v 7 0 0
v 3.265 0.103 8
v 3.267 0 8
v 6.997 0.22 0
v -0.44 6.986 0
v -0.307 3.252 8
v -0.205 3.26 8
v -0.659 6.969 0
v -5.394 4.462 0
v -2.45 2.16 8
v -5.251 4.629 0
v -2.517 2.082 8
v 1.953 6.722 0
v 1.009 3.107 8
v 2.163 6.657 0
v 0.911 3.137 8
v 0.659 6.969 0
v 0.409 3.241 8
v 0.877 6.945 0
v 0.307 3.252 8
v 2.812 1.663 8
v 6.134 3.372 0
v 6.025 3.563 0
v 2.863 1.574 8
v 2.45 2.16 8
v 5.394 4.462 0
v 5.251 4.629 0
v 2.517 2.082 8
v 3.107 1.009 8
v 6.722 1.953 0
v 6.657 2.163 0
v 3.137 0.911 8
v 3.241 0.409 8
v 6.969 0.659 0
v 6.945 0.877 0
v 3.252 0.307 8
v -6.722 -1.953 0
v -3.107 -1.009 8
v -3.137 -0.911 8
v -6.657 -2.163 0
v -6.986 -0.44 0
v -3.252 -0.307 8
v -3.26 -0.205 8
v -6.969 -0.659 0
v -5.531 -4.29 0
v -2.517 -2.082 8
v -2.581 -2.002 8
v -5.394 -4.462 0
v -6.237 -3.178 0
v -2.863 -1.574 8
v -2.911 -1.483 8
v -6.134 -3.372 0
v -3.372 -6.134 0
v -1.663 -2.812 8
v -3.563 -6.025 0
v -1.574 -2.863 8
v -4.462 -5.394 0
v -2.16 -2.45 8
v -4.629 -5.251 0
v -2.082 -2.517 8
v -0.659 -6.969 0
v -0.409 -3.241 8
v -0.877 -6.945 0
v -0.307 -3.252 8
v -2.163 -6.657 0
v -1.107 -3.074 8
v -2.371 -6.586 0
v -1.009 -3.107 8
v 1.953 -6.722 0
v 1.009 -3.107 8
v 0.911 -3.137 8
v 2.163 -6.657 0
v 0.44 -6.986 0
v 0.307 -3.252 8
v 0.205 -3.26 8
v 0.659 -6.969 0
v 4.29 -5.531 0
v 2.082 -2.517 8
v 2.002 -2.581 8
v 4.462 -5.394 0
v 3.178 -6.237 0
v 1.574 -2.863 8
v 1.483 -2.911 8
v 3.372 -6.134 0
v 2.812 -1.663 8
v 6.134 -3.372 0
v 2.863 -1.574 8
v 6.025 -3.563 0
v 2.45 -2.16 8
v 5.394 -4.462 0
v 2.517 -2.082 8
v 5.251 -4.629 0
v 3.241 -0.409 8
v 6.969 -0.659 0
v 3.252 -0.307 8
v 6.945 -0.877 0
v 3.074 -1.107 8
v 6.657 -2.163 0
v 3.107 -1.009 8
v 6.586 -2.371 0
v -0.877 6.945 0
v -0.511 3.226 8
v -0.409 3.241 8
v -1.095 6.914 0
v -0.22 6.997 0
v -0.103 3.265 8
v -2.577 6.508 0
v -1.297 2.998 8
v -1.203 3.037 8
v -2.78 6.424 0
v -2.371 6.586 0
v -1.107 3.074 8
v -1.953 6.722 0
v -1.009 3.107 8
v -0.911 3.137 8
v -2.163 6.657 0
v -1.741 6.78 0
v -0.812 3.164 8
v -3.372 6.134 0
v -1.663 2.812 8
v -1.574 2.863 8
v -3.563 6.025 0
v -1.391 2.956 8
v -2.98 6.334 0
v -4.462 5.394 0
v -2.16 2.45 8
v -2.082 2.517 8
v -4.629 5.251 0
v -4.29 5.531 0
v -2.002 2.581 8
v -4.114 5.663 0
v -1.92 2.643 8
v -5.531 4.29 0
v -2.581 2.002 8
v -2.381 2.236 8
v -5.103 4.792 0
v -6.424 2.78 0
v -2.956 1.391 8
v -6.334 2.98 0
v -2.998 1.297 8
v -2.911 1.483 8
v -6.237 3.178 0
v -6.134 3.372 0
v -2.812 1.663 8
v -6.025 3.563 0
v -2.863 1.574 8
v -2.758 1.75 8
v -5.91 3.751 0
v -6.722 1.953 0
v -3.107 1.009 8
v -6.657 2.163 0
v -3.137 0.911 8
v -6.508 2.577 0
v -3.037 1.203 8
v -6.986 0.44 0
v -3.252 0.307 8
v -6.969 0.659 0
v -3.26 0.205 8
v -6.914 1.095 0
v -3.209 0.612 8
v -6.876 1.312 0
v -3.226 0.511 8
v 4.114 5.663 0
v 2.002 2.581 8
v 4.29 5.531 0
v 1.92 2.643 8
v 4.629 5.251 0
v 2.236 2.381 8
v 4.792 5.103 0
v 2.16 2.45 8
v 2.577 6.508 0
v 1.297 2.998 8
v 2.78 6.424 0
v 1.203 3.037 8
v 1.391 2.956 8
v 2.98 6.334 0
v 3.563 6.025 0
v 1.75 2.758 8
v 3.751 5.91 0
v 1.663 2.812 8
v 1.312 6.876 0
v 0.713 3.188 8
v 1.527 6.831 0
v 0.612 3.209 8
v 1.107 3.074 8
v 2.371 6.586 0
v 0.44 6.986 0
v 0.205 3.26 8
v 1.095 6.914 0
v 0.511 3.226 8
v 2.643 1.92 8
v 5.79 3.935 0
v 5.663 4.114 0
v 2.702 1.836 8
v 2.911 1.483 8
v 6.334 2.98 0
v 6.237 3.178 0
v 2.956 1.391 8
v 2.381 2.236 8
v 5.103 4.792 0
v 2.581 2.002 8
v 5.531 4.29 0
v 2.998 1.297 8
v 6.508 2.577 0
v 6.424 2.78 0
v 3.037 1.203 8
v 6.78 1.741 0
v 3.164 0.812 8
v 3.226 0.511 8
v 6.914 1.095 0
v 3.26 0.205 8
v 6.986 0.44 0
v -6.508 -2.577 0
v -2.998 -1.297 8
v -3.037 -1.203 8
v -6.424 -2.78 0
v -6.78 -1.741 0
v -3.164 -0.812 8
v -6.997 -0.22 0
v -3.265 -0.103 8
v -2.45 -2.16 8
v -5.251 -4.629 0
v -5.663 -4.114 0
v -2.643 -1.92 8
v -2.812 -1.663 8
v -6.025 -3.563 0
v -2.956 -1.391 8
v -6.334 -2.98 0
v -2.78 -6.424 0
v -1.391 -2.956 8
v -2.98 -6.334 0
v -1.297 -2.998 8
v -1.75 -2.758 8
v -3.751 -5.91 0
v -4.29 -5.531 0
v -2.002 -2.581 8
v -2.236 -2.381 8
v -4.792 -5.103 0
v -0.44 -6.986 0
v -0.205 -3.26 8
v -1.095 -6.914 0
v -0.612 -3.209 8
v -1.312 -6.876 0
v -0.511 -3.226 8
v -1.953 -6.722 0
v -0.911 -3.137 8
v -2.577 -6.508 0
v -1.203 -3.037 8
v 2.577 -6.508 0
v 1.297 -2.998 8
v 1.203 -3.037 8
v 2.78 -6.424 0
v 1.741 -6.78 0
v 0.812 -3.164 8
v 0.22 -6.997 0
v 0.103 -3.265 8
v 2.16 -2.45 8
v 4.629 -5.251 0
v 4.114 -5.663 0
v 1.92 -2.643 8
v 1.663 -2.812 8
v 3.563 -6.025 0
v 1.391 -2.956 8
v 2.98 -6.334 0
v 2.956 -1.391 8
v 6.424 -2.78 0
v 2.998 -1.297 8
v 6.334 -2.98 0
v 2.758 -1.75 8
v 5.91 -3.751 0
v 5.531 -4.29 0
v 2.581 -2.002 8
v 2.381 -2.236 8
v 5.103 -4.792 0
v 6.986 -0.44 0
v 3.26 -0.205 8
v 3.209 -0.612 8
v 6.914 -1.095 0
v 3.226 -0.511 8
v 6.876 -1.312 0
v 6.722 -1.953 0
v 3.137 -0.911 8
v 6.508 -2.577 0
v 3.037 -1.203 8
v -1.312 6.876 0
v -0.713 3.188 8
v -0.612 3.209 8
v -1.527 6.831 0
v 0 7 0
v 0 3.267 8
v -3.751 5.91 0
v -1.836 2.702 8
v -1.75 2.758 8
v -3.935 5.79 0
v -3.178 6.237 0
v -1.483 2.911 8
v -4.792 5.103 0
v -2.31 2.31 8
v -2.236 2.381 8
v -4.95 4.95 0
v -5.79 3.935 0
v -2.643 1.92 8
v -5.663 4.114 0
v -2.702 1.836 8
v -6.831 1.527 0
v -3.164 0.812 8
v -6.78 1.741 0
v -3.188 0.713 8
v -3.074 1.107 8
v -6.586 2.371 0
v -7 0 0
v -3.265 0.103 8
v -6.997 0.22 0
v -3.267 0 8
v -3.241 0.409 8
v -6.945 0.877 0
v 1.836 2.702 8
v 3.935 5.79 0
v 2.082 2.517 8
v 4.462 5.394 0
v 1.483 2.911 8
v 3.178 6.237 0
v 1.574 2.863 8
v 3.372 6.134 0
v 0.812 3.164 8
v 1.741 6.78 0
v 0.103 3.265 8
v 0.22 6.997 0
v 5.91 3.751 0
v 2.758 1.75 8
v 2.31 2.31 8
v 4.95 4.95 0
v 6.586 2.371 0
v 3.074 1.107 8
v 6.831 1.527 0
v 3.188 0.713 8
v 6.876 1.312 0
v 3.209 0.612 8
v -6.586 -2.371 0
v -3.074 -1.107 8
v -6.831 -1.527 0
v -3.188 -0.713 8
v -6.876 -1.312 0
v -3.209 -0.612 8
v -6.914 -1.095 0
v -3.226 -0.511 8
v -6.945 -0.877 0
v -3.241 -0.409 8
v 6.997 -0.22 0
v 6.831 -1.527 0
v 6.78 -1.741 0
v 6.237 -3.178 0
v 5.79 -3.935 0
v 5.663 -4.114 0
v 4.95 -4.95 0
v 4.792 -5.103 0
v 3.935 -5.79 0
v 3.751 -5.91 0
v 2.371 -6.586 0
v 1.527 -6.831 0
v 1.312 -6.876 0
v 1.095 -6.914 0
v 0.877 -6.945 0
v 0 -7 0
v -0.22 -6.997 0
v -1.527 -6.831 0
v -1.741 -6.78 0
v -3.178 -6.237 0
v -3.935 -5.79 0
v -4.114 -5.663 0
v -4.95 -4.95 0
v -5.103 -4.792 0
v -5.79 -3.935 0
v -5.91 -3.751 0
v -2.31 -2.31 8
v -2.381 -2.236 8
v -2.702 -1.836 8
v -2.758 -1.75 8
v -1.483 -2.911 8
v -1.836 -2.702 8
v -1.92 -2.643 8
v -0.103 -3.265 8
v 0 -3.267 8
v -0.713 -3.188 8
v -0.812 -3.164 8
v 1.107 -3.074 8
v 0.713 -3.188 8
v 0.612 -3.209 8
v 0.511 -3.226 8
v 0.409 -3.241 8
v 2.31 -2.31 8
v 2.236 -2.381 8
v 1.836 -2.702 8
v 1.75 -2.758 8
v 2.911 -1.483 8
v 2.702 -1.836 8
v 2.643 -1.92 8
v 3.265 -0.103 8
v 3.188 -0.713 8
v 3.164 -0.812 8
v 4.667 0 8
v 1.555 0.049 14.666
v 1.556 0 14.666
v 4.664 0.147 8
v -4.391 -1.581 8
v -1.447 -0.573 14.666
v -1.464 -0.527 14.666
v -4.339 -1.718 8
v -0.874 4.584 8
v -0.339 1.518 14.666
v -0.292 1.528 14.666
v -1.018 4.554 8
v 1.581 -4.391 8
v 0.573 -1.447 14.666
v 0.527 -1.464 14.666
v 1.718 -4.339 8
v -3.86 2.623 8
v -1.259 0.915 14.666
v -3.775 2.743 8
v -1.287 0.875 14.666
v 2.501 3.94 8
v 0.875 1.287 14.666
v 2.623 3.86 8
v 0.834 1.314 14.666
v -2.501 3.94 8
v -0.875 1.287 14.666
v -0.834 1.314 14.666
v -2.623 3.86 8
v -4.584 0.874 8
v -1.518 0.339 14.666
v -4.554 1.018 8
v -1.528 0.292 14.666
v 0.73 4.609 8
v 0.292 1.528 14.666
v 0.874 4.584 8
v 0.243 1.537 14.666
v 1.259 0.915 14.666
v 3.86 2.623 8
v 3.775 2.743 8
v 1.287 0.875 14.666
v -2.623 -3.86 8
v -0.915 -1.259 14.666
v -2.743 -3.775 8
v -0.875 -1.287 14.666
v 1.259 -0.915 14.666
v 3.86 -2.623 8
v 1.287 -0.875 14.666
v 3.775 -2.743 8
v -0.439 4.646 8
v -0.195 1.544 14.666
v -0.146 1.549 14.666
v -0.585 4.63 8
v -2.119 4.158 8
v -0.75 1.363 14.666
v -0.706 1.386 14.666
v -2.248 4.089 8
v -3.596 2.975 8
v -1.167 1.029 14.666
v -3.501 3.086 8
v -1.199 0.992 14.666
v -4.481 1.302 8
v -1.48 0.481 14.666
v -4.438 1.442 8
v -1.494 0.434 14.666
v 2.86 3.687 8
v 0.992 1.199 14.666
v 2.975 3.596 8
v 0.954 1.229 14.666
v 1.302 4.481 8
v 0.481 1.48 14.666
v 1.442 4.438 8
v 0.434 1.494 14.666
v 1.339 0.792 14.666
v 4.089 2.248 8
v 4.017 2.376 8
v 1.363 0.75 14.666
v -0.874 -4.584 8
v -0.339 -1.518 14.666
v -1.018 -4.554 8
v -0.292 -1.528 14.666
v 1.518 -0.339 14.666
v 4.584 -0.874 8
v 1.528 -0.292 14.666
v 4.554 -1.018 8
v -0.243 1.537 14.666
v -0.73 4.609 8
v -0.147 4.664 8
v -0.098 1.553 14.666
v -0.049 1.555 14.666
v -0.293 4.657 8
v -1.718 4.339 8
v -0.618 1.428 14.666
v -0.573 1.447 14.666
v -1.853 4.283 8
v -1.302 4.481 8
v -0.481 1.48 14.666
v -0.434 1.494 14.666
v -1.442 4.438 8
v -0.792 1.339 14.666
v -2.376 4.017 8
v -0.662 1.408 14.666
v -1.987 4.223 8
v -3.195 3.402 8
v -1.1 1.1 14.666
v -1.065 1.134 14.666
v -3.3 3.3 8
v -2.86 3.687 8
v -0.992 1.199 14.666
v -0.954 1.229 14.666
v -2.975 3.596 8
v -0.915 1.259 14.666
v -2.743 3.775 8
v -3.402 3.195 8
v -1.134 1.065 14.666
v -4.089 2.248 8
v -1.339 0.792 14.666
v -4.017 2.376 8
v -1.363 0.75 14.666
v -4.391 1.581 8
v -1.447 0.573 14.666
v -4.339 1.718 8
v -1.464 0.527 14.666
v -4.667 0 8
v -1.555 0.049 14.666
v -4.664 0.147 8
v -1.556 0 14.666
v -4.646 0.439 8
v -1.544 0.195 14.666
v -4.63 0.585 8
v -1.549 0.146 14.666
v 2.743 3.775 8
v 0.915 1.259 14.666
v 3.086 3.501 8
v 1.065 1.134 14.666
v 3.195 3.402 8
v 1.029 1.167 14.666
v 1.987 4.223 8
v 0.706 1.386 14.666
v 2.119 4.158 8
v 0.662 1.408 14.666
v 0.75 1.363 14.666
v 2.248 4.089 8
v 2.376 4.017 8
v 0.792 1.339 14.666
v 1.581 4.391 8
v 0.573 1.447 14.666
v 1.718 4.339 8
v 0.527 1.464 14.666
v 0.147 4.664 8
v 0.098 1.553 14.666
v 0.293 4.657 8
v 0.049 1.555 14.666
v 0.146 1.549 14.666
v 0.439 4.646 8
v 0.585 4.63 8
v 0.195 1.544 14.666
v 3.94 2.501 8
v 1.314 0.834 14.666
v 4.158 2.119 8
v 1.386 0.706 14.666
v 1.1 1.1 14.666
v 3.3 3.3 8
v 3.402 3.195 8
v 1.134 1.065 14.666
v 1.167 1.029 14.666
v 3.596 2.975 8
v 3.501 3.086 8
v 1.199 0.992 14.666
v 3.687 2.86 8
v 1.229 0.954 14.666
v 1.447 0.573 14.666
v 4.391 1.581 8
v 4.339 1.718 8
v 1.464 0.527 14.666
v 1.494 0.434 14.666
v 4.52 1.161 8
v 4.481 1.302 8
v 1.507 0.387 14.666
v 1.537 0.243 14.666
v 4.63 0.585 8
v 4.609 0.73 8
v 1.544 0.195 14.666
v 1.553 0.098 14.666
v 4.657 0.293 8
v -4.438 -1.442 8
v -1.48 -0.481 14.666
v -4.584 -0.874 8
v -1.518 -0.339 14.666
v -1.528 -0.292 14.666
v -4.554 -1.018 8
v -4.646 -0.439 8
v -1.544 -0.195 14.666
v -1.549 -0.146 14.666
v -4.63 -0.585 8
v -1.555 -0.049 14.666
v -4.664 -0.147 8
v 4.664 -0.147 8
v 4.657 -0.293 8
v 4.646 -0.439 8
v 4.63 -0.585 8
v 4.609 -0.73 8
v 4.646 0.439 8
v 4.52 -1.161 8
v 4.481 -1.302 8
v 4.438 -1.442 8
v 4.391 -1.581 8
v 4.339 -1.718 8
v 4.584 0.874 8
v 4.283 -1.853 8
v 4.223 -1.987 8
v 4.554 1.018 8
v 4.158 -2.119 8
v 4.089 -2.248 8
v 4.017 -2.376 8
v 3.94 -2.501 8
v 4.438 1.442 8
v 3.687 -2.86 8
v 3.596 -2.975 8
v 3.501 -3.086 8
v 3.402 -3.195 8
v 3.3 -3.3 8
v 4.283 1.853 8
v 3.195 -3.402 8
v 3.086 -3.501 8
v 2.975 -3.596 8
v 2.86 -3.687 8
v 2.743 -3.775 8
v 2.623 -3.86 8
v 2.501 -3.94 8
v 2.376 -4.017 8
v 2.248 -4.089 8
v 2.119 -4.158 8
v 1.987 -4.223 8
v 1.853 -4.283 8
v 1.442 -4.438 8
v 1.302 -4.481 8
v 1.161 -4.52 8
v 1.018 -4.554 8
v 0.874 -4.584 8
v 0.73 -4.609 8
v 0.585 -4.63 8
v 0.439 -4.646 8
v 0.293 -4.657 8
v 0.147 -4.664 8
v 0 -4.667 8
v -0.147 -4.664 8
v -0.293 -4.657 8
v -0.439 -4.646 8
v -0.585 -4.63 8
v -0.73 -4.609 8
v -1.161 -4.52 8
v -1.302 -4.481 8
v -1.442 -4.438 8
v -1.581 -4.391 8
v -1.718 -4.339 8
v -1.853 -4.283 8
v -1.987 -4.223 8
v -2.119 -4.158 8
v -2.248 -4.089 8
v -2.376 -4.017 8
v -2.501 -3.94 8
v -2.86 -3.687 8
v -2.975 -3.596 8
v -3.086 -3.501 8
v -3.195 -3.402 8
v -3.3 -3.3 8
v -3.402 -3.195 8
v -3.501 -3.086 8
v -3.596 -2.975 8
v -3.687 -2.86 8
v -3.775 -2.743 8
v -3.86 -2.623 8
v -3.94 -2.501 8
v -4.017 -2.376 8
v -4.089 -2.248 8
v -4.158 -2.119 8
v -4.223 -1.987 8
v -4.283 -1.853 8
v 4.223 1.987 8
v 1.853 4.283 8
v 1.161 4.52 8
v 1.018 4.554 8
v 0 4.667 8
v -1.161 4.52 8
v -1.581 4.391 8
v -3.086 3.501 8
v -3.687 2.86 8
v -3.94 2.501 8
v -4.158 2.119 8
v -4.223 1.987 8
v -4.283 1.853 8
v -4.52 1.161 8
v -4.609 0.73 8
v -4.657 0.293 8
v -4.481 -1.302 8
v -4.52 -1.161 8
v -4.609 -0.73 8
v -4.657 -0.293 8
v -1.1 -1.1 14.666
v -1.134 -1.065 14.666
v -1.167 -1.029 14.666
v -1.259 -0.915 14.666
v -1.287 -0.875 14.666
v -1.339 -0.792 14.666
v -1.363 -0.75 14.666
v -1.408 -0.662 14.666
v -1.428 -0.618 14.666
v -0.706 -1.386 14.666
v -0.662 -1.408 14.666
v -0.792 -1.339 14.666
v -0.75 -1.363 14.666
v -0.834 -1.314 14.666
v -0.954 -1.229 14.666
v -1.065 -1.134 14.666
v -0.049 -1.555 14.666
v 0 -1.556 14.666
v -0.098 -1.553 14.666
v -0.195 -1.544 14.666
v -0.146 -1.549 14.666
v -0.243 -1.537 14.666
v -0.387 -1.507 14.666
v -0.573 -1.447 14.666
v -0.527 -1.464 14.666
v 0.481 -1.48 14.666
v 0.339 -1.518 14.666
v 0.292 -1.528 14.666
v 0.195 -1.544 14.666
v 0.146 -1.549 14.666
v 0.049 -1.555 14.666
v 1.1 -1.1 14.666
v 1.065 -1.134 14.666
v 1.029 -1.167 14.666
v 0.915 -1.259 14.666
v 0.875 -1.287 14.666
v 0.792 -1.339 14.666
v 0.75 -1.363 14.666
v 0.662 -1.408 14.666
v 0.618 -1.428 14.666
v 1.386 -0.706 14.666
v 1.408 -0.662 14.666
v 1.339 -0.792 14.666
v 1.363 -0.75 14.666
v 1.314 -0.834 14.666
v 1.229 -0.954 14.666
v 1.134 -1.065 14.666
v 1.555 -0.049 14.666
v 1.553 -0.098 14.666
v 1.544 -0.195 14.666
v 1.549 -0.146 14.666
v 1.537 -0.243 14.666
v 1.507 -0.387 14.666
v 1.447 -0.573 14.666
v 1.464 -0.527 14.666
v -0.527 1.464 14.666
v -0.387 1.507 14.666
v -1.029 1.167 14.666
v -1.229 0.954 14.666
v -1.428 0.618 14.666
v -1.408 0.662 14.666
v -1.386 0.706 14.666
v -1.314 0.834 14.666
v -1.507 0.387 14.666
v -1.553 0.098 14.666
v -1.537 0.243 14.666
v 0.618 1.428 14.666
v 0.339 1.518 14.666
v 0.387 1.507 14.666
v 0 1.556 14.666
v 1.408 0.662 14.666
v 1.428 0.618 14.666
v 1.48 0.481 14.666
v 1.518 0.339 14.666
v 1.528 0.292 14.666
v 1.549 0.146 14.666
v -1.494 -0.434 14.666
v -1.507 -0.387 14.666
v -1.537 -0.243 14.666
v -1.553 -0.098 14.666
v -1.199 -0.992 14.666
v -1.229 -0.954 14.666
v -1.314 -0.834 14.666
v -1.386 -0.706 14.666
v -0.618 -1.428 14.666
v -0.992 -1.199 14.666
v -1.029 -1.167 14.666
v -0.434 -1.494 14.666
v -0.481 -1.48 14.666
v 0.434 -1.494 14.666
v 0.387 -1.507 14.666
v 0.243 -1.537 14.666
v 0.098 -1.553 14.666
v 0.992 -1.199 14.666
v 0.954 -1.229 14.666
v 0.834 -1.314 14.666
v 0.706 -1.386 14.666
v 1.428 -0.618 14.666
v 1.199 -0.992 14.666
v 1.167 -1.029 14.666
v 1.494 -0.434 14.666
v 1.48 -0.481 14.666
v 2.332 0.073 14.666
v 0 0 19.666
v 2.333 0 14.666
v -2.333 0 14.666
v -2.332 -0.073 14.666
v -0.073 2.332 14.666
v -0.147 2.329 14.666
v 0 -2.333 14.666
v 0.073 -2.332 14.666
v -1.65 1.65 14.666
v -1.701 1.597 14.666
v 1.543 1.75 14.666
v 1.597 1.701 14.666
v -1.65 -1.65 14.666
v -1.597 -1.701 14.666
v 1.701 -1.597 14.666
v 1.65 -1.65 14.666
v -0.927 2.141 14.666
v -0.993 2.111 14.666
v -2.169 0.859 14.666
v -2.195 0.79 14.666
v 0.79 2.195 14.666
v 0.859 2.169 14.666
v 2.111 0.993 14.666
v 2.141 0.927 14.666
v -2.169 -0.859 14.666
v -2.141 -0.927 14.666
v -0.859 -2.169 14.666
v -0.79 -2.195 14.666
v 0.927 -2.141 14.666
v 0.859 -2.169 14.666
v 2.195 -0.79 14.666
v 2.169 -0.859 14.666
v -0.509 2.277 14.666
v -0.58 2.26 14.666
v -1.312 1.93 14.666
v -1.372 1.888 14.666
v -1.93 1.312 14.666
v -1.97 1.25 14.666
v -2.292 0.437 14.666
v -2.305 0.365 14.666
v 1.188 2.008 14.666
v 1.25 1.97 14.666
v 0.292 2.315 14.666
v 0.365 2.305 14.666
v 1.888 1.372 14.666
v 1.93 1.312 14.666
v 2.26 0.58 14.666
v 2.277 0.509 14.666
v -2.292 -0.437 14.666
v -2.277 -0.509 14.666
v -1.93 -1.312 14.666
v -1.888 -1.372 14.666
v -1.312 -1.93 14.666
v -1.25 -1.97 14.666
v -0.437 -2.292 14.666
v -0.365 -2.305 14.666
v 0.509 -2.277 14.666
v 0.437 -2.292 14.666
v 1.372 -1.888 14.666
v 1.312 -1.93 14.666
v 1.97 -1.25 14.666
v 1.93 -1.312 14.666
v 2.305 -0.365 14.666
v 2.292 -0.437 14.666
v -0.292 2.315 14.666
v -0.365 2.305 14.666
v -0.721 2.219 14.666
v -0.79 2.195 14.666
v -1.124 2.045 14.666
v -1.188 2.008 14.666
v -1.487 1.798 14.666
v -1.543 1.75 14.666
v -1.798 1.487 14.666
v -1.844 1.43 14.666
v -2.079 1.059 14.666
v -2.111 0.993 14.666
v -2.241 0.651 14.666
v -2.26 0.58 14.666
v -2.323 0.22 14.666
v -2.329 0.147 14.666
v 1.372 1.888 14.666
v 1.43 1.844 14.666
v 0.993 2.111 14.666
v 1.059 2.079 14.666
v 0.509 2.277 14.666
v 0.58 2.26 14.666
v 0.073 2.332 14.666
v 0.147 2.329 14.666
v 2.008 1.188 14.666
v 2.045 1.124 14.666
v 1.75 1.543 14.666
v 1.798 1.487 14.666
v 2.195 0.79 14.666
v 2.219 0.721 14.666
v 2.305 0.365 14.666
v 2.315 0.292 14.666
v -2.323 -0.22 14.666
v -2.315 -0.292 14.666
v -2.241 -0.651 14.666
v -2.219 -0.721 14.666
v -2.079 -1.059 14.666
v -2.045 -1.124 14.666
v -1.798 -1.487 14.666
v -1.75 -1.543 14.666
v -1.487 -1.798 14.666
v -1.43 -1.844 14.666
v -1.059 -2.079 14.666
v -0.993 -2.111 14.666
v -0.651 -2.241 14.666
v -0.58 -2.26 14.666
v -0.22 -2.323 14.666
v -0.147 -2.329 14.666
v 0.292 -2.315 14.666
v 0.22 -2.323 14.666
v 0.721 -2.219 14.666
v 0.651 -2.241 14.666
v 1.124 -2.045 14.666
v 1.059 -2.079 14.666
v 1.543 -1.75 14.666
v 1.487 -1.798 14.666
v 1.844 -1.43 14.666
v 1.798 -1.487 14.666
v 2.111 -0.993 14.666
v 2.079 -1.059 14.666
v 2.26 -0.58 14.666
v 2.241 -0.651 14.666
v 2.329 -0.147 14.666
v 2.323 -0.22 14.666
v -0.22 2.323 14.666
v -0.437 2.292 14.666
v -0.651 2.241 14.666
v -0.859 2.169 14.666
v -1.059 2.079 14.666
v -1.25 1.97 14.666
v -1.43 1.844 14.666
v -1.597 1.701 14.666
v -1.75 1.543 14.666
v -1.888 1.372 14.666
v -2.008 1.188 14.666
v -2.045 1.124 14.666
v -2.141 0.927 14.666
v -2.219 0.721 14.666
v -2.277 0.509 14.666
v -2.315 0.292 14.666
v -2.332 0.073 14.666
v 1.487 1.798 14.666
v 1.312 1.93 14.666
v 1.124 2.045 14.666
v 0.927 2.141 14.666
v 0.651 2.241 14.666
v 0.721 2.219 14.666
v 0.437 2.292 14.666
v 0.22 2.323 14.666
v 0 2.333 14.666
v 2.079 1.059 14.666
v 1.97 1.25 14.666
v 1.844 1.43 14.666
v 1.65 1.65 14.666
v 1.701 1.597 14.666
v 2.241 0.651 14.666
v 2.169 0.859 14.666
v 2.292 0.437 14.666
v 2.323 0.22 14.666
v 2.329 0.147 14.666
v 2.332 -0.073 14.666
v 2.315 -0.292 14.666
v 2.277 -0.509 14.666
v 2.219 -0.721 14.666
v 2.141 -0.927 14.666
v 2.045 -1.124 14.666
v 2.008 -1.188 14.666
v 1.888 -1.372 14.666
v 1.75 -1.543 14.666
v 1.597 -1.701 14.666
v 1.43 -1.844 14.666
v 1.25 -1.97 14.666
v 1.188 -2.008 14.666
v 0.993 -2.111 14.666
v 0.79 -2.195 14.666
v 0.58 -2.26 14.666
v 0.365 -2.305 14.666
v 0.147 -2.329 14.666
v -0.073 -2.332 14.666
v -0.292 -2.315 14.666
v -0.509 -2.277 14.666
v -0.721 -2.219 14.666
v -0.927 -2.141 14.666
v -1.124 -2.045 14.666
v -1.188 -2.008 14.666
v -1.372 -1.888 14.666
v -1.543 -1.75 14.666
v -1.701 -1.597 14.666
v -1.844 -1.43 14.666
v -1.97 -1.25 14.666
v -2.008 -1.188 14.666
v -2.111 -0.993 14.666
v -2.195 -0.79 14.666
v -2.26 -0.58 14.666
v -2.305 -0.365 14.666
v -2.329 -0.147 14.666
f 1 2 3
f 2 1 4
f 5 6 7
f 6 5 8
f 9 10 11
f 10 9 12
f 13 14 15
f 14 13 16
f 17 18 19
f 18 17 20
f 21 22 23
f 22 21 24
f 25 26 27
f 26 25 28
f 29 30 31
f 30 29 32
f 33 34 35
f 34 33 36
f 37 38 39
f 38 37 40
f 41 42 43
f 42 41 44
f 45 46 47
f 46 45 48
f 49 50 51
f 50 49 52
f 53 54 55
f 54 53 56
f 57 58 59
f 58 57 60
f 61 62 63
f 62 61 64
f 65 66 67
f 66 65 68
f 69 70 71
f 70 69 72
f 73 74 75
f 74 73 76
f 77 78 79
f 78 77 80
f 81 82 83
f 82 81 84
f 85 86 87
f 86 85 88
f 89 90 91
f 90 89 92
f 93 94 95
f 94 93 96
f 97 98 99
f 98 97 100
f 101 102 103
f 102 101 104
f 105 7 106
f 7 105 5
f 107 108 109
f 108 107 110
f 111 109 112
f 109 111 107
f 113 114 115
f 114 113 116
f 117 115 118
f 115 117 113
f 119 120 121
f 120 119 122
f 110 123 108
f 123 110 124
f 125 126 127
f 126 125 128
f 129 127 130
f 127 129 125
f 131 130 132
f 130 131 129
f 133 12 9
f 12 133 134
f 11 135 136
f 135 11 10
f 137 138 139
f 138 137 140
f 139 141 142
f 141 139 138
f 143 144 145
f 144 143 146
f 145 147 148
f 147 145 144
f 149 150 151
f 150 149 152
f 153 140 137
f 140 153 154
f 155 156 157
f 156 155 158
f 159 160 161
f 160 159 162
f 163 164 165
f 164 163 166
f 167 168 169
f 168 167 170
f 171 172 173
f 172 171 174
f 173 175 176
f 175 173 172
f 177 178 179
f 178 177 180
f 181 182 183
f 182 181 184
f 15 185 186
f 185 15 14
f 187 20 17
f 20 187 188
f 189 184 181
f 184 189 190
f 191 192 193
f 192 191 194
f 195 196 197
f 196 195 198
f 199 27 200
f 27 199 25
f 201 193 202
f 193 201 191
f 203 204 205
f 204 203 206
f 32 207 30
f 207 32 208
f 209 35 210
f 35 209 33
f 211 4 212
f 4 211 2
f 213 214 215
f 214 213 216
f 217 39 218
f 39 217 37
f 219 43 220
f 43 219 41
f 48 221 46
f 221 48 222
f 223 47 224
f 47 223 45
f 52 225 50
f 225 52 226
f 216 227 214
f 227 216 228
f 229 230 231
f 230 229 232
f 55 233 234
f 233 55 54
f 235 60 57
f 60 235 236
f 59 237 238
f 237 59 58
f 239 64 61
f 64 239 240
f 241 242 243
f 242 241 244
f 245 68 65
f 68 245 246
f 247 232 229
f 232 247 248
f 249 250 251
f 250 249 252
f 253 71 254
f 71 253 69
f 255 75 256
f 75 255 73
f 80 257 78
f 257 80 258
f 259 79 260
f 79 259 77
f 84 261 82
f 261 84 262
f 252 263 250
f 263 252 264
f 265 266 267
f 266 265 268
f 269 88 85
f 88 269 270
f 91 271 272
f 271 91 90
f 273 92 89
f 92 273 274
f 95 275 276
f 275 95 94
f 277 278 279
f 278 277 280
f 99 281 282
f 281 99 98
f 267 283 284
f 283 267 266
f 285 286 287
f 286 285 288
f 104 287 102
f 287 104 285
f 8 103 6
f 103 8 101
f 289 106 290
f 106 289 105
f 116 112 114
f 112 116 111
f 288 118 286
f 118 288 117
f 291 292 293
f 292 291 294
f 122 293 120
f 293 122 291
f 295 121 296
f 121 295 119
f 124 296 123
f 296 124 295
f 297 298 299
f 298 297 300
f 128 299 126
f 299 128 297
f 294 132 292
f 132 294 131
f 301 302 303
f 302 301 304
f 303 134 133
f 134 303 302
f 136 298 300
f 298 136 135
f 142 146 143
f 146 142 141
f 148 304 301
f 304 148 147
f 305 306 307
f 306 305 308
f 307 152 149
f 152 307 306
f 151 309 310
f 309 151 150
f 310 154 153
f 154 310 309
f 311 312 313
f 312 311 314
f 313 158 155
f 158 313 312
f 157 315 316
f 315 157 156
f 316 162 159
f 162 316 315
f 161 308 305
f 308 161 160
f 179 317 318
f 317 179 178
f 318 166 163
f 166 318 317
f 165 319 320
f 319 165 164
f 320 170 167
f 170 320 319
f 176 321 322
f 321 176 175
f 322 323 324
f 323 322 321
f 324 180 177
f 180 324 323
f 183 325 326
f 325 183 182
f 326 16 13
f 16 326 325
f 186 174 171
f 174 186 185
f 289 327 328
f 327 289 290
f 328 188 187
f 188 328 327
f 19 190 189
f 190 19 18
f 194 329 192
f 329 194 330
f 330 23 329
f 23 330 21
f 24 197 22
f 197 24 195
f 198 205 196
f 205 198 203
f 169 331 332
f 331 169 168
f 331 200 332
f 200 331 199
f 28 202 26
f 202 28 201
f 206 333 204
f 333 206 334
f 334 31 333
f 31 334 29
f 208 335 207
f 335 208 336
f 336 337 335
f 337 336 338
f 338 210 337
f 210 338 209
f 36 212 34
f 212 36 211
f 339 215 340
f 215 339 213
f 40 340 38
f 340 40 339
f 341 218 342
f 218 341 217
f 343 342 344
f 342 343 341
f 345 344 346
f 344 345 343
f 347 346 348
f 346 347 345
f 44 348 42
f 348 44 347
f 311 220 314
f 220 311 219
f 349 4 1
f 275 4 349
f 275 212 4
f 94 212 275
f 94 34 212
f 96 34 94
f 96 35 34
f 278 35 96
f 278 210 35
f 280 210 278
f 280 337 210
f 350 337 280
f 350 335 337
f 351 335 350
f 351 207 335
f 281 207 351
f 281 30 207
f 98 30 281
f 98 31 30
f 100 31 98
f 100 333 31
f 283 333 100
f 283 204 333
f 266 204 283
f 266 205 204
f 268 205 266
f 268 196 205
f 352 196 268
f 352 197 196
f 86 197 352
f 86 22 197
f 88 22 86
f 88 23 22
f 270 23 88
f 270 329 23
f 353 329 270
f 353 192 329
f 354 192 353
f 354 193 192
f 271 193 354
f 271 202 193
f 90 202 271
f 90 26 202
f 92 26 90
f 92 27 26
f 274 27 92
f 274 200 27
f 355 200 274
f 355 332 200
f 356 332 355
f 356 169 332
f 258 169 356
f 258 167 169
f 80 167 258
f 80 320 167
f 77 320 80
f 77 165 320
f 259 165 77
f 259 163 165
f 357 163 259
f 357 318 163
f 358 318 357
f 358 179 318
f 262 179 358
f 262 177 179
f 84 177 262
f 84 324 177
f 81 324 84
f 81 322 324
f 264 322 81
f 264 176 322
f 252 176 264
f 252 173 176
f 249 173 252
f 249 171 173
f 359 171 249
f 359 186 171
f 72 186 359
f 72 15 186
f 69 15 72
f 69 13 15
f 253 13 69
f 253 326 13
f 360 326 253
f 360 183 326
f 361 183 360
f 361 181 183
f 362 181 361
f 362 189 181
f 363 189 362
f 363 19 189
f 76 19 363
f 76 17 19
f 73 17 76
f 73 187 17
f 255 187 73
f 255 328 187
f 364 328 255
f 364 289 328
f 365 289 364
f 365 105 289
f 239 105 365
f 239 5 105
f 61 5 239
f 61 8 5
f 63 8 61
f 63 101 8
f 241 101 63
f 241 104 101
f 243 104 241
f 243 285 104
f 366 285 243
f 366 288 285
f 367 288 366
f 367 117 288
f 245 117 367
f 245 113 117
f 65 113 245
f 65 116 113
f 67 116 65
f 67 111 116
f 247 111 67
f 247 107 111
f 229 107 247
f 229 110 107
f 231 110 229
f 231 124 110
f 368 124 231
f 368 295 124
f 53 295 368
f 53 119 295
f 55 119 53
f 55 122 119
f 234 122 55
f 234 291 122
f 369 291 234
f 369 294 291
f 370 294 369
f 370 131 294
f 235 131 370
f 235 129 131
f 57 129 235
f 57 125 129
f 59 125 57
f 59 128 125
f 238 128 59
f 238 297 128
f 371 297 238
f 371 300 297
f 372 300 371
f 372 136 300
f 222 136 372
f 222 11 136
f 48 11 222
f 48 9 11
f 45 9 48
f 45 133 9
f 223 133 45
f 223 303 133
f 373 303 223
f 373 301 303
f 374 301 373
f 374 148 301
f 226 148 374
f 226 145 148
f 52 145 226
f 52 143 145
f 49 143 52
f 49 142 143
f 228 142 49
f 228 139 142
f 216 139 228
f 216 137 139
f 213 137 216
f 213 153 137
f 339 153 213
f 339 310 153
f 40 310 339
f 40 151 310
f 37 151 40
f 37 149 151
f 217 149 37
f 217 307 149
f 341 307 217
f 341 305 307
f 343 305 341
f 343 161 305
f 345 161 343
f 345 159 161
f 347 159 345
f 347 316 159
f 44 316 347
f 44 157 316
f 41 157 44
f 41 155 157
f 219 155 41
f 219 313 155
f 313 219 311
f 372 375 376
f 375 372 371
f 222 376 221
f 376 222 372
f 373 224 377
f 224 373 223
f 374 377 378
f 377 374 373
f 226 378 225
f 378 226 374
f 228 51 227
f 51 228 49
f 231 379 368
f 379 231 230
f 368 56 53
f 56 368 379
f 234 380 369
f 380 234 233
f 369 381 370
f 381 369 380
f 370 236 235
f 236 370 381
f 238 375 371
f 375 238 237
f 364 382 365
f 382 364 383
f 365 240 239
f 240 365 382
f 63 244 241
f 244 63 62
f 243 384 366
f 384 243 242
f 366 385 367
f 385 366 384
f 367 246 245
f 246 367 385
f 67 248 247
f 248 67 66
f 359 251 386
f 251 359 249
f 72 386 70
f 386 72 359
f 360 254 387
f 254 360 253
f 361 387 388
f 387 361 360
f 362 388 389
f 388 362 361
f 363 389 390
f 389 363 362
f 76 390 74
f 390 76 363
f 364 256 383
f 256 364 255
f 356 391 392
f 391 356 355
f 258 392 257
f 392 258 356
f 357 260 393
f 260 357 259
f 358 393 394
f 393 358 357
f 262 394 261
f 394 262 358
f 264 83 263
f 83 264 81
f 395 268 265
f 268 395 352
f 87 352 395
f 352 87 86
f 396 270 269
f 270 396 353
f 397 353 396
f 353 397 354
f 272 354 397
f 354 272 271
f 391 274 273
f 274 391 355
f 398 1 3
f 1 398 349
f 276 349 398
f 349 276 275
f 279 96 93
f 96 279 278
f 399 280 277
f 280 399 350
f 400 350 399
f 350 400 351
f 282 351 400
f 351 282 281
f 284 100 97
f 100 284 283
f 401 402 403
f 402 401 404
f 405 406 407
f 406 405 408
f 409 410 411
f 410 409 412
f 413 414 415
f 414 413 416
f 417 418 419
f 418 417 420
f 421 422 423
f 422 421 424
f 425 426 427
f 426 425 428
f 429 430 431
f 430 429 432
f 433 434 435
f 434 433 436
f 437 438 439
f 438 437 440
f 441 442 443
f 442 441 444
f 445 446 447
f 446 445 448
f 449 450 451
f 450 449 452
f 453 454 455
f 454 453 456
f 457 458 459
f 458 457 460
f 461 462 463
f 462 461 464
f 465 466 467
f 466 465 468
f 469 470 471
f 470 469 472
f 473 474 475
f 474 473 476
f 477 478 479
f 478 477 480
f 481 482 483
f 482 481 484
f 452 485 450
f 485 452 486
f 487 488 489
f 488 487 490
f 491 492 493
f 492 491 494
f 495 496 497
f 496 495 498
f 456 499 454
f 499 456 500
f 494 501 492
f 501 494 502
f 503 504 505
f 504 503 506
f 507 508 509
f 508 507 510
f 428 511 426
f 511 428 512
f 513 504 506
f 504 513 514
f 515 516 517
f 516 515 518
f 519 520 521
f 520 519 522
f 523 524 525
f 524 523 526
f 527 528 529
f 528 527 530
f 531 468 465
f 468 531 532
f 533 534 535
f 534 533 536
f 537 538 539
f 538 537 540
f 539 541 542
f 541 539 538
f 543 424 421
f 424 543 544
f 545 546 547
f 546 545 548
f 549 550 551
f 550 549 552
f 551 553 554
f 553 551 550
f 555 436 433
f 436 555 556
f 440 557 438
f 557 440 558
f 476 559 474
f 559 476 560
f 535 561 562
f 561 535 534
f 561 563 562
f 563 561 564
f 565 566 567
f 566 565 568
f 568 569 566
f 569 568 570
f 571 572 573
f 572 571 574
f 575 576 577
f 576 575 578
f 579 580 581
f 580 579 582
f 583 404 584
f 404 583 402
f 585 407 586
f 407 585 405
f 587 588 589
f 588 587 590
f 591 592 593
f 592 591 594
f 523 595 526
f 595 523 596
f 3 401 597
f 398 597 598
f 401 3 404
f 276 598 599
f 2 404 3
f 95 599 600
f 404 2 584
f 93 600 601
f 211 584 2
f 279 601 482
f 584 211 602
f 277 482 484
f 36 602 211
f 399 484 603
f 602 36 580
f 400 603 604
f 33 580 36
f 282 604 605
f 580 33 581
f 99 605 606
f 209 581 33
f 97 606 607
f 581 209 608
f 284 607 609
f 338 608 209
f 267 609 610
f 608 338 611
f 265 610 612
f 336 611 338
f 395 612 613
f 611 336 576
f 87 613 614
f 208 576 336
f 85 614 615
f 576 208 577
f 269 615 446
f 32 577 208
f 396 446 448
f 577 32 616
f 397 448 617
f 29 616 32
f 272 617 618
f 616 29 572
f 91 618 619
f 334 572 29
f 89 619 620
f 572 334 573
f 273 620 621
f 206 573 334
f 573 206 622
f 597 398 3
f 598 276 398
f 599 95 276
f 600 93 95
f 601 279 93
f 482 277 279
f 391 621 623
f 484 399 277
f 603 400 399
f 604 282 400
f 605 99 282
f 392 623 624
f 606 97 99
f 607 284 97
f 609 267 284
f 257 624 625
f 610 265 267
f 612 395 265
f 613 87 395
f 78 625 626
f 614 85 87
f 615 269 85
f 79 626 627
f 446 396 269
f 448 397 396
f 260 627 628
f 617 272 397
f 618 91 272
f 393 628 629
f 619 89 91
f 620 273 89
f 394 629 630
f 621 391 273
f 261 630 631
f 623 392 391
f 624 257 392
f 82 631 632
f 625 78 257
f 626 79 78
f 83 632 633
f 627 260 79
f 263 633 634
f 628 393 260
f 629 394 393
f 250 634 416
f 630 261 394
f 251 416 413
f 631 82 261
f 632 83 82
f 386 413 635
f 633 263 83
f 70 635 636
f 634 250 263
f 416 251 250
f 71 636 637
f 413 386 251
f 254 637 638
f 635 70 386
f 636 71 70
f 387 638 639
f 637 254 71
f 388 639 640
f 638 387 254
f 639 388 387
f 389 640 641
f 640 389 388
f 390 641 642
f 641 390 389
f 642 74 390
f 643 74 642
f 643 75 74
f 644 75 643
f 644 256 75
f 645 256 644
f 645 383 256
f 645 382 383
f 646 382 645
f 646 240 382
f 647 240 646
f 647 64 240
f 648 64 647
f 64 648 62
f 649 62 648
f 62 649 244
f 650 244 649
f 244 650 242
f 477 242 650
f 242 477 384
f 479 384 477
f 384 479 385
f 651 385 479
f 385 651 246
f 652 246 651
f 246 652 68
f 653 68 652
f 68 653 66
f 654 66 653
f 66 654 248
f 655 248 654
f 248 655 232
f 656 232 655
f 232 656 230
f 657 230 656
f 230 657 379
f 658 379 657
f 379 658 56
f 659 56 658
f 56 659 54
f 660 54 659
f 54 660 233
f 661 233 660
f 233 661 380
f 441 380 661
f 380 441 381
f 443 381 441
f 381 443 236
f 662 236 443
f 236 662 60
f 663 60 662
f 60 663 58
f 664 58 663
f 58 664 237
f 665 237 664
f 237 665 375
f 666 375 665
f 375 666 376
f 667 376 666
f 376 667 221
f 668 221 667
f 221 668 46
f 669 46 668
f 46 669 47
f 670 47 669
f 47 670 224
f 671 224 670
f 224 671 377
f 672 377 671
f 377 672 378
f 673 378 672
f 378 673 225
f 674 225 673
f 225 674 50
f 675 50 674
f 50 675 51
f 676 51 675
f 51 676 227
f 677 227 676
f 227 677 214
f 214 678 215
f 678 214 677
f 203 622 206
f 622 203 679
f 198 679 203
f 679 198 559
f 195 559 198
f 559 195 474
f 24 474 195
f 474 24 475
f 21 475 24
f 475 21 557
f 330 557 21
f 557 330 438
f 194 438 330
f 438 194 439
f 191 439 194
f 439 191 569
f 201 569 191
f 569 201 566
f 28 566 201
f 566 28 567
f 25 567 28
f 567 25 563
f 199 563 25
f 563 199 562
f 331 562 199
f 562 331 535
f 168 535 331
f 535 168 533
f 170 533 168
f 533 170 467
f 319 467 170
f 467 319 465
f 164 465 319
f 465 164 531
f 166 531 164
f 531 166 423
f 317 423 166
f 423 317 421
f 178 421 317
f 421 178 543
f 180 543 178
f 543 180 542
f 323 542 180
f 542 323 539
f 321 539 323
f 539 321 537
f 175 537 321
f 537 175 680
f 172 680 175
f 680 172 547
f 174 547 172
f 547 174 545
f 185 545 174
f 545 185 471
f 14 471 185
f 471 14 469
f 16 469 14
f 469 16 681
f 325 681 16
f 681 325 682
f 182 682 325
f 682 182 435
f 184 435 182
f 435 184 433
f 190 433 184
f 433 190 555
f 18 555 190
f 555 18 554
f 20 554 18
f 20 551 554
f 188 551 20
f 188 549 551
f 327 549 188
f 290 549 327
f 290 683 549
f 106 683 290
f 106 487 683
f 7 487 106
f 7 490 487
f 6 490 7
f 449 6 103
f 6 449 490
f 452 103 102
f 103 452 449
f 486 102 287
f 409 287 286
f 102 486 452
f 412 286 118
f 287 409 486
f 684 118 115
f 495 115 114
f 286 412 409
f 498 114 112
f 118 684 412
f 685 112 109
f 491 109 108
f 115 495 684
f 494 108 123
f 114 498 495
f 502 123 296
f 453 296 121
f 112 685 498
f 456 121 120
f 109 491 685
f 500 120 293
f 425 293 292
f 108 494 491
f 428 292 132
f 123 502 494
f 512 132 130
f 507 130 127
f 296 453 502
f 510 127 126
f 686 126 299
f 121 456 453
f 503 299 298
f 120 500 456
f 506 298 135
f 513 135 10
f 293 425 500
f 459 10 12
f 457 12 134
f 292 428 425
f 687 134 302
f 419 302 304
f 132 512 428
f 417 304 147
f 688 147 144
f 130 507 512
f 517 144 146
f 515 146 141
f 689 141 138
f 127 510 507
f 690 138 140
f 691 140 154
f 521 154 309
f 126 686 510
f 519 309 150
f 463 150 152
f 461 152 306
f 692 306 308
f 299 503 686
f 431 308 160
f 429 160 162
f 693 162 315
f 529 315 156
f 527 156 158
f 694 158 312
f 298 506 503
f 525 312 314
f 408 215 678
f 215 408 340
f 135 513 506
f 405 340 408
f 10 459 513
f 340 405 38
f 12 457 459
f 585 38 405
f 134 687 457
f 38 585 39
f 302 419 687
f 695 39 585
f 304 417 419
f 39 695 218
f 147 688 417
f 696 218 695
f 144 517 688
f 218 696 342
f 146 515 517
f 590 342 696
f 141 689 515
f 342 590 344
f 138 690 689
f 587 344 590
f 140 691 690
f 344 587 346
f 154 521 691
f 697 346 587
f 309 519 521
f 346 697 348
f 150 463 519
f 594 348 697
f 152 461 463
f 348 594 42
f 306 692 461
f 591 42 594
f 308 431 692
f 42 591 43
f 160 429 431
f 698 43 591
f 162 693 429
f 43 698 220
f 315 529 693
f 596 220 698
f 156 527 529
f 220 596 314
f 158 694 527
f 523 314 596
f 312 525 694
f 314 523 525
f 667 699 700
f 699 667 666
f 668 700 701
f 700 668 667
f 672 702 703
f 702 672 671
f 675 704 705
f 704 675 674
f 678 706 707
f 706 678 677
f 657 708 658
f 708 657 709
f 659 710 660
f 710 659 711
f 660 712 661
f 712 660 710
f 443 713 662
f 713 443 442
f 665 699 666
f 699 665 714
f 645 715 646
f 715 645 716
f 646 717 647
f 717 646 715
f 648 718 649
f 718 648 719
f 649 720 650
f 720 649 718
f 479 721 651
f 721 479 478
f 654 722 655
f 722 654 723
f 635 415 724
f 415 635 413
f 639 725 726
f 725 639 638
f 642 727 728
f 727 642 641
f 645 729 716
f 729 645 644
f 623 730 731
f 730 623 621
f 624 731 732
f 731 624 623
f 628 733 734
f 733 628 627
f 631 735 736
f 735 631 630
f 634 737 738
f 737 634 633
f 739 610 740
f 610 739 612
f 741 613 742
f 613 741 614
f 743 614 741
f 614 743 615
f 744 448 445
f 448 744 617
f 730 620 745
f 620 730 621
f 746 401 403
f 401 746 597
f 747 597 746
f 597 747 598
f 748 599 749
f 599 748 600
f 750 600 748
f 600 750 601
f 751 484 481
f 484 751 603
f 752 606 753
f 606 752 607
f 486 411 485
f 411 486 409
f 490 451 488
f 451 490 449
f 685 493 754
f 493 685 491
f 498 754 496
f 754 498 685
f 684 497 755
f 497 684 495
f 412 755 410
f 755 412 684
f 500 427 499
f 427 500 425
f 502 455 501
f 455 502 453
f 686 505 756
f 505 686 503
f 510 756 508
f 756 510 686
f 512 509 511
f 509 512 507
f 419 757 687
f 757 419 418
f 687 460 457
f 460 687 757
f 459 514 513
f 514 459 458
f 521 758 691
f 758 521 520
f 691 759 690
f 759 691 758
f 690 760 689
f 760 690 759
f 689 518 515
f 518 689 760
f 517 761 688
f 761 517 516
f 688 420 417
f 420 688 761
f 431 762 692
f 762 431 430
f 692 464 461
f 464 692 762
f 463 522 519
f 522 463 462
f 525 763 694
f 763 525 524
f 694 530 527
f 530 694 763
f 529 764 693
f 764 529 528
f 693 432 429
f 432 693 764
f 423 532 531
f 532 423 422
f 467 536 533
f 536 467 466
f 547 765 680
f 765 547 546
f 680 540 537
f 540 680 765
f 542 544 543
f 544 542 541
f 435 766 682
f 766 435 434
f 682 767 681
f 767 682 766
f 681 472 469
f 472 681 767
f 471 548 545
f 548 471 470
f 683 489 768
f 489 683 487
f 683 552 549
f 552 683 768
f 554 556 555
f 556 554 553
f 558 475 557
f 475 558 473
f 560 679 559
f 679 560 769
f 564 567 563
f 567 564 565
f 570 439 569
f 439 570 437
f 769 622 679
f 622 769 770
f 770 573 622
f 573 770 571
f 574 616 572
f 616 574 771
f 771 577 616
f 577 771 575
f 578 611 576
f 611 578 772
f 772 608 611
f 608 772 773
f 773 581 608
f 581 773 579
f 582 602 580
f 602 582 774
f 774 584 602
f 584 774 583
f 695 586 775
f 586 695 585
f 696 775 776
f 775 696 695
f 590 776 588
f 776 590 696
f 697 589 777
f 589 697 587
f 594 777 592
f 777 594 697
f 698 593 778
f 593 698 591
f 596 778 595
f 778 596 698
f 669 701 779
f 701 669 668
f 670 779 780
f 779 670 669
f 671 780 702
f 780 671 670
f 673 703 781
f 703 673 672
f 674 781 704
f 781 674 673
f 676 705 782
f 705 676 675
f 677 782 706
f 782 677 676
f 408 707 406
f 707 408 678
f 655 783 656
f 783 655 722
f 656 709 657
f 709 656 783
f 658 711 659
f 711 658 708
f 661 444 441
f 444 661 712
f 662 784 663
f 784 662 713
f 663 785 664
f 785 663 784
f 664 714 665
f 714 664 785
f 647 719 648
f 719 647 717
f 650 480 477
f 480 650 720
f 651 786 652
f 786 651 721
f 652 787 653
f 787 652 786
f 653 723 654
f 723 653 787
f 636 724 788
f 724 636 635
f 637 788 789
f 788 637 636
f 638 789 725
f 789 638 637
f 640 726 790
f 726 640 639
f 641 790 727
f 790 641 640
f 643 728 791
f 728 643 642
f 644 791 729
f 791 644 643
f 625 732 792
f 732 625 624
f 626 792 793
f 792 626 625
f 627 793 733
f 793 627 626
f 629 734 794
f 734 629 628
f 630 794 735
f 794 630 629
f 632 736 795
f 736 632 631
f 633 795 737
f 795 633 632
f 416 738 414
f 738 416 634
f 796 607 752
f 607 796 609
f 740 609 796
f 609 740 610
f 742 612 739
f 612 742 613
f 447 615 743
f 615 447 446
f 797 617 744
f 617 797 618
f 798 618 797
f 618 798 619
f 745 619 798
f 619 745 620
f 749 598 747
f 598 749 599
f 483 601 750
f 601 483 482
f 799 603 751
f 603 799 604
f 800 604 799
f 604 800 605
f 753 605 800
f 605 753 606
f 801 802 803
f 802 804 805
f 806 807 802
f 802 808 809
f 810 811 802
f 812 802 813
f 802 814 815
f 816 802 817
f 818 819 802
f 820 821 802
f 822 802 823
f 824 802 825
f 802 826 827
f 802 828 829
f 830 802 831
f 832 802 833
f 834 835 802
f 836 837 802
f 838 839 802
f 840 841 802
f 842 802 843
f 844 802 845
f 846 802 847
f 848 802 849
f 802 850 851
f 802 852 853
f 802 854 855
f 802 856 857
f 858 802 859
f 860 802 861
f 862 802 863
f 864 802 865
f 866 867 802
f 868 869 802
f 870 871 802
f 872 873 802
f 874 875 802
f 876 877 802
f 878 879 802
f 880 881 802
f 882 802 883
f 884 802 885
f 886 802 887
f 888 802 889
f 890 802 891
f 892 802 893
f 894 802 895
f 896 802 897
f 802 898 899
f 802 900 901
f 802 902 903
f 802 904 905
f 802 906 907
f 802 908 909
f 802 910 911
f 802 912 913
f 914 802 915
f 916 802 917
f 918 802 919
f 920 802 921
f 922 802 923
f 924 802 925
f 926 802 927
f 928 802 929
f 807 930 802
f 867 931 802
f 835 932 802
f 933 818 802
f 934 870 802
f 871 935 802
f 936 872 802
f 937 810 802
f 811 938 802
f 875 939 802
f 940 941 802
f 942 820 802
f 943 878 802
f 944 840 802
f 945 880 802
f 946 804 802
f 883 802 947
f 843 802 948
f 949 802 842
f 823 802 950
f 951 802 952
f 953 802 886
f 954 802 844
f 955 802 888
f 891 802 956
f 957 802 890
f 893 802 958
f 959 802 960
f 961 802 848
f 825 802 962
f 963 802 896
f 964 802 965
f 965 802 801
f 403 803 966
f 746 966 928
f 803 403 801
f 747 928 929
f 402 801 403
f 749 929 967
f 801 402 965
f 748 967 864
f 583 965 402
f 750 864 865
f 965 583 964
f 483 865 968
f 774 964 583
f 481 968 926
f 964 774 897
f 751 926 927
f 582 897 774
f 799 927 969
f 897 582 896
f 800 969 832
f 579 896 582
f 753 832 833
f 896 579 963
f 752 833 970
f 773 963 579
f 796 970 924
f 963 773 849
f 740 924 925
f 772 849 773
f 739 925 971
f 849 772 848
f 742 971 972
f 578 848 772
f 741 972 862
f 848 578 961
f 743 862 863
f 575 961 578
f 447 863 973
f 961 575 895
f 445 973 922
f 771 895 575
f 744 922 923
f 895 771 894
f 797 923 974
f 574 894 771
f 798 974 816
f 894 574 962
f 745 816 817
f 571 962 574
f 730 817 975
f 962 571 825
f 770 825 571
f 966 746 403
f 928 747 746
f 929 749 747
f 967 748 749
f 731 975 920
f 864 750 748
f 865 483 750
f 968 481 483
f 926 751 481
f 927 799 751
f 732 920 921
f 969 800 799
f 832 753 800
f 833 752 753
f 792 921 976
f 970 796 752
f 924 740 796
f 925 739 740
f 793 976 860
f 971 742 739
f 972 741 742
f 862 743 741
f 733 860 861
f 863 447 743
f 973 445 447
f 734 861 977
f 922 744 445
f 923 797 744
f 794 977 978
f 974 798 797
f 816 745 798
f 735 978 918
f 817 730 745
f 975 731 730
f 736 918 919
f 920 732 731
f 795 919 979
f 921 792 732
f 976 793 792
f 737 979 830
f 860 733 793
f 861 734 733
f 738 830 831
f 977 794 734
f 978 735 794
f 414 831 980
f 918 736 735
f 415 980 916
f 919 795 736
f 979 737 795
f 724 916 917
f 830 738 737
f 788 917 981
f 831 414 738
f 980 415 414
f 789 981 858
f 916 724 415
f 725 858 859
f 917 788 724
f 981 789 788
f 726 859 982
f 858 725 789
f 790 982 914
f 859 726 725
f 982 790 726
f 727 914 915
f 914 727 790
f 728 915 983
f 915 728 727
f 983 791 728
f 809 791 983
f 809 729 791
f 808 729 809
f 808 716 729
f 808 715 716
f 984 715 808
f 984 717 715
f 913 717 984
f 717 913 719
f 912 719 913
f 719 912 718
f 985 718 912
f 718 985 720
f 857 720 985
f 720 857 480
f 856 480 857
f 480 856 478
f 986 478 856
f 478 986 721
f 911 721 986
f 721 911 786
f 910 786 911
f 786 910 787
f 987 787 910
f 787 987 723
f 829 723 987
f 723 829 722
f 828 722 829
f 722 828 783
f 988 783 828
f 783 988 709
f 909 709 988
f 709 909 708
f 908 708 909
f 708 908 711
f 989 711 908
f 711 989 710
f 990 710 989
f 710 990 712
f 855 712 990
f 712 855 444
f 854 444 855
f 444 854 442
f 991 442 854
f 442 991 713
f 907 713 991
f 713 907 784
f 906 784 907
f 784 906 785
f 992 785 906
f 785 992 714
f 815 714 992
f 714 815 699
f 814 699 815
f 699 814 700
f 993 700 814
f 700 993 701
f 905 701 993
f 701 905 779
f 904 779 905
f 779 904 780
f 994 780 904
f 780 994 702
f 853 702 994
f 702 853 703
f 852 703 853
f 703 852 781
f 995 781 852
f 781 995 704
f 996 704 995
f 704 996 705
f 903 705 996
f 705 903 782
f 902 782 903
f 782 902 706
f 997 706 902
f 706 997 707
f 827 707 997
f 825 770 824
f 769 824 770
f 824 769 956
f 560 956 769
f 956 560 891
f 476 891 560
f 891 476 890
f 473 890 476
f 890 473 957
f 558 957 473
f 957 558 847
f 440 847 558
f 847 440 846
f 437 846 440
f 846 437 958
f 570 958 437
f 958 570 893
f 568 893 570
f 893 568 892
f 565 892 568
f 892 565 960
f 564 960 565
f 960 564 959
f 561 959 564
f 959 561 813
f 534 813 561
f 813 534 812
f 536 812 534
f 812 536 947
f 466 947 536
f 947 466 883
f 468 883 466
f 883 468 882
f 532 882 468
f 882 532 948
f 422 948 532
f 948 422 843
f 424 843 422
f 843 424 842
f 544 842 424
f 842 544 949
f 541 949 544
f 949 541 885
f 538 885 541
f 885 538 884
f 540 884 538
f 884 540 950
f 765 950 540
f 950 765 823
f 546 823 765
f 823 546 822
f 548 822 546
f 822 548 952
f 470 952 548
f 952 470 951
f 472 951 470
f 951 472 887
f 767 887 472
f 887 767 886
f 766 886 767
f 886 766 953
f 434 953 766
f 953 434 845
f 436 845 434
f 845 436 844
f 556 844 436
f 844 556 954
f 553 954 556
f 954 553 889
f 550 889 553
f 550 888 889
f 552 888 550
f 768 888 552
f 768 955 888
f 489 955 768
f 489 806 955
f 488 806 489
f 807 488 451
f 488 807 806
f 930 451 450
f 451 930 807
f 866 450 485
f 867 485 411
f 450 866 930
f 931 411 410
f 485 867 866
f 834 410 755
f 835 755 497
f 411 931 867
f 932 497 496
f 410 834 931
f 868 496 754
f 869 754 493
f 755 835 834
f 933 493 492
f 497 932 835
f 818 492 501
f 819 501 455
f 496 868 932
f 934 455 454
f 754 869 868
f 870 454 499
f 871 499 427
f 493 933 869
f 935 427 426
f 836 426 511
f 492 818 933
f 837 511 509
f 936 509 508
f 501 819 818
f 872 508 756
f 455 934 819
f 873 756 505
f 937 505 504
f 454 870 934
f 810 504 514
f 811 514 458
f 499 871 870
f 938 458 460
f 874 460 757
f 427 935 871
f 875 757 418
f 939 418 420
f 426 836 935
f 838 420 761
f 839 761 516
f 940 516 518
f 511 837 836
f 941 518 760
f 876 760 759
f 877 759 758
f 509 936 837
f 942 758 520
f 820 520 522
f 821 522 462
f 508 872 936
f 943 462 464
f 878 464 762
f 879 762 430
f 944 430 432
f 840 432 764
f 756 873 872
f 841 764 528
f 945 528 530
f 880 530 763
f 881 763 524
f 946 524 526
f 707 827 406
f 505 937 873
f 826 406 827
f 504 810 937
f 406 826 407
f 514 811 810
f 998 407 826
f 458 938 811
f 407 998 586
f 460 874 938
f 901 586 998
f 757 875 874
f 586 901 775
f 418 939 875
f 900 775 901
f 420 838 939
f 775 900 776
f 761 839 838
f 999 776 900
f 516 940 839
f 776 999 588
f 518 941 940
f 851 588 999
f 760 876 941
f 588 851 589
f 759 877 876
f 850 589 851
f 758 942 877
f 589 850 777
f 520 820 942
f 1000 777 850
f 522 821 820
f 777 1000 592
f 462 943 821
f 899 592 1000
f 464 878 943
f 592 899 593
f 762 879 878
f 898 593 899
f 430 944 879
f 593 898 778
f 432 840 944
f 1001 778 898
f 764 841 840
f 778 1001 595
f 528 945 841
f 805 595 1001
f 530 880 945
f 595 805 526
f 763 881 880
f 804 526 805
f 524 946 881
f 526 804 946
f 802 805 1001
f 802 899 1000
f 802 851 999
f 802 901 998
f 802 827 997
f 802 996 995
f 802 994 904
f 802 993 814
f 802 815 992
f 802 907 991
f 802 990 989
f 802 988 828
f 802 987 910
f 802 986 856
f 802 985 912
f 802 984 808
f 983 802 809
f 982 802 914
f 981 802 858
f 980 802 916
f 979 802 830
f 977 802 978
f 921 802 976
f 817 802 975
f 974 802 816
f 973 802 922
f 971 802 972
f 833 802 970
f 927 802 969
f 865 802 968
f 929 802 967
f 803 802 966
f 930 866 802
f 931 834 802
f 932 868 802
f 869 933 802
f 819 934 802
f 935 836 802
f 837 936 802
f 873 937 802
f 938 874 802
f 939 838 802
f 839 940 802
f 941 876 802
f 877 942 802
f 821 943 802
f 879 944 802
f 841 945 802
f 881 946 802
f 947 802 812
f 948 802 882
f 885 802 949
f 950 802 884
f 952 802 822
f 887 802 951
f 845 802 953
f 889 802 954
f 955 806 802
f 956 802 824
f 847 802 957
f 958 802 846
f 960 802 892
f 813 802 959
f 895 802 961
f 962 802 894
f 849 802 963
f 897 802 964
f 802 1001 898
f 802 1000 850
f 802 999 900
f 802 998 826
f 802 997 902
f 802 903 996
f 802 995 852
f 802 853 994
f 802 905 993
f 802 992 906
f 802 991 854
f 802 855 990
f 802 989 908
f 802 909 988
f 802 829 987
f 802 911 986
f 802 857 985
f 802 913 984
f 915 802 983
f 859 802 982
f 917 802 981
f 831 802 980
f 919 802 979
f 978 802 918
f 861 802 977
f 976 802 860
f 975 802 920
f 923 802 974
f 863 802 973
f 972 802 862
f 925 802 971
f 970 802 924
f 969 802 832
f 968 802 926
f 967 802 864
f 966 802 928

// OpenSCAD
cylinder(15, 7, 0, $fn=200);
translate([0, 0, 8]){
    cylinder(10, 2*10/3-2, 0, $fn=200);
}
translate([0, 0, 14.666]) {
    cylinder(5, 2*5/3-1, 0, $fn=200);
}
